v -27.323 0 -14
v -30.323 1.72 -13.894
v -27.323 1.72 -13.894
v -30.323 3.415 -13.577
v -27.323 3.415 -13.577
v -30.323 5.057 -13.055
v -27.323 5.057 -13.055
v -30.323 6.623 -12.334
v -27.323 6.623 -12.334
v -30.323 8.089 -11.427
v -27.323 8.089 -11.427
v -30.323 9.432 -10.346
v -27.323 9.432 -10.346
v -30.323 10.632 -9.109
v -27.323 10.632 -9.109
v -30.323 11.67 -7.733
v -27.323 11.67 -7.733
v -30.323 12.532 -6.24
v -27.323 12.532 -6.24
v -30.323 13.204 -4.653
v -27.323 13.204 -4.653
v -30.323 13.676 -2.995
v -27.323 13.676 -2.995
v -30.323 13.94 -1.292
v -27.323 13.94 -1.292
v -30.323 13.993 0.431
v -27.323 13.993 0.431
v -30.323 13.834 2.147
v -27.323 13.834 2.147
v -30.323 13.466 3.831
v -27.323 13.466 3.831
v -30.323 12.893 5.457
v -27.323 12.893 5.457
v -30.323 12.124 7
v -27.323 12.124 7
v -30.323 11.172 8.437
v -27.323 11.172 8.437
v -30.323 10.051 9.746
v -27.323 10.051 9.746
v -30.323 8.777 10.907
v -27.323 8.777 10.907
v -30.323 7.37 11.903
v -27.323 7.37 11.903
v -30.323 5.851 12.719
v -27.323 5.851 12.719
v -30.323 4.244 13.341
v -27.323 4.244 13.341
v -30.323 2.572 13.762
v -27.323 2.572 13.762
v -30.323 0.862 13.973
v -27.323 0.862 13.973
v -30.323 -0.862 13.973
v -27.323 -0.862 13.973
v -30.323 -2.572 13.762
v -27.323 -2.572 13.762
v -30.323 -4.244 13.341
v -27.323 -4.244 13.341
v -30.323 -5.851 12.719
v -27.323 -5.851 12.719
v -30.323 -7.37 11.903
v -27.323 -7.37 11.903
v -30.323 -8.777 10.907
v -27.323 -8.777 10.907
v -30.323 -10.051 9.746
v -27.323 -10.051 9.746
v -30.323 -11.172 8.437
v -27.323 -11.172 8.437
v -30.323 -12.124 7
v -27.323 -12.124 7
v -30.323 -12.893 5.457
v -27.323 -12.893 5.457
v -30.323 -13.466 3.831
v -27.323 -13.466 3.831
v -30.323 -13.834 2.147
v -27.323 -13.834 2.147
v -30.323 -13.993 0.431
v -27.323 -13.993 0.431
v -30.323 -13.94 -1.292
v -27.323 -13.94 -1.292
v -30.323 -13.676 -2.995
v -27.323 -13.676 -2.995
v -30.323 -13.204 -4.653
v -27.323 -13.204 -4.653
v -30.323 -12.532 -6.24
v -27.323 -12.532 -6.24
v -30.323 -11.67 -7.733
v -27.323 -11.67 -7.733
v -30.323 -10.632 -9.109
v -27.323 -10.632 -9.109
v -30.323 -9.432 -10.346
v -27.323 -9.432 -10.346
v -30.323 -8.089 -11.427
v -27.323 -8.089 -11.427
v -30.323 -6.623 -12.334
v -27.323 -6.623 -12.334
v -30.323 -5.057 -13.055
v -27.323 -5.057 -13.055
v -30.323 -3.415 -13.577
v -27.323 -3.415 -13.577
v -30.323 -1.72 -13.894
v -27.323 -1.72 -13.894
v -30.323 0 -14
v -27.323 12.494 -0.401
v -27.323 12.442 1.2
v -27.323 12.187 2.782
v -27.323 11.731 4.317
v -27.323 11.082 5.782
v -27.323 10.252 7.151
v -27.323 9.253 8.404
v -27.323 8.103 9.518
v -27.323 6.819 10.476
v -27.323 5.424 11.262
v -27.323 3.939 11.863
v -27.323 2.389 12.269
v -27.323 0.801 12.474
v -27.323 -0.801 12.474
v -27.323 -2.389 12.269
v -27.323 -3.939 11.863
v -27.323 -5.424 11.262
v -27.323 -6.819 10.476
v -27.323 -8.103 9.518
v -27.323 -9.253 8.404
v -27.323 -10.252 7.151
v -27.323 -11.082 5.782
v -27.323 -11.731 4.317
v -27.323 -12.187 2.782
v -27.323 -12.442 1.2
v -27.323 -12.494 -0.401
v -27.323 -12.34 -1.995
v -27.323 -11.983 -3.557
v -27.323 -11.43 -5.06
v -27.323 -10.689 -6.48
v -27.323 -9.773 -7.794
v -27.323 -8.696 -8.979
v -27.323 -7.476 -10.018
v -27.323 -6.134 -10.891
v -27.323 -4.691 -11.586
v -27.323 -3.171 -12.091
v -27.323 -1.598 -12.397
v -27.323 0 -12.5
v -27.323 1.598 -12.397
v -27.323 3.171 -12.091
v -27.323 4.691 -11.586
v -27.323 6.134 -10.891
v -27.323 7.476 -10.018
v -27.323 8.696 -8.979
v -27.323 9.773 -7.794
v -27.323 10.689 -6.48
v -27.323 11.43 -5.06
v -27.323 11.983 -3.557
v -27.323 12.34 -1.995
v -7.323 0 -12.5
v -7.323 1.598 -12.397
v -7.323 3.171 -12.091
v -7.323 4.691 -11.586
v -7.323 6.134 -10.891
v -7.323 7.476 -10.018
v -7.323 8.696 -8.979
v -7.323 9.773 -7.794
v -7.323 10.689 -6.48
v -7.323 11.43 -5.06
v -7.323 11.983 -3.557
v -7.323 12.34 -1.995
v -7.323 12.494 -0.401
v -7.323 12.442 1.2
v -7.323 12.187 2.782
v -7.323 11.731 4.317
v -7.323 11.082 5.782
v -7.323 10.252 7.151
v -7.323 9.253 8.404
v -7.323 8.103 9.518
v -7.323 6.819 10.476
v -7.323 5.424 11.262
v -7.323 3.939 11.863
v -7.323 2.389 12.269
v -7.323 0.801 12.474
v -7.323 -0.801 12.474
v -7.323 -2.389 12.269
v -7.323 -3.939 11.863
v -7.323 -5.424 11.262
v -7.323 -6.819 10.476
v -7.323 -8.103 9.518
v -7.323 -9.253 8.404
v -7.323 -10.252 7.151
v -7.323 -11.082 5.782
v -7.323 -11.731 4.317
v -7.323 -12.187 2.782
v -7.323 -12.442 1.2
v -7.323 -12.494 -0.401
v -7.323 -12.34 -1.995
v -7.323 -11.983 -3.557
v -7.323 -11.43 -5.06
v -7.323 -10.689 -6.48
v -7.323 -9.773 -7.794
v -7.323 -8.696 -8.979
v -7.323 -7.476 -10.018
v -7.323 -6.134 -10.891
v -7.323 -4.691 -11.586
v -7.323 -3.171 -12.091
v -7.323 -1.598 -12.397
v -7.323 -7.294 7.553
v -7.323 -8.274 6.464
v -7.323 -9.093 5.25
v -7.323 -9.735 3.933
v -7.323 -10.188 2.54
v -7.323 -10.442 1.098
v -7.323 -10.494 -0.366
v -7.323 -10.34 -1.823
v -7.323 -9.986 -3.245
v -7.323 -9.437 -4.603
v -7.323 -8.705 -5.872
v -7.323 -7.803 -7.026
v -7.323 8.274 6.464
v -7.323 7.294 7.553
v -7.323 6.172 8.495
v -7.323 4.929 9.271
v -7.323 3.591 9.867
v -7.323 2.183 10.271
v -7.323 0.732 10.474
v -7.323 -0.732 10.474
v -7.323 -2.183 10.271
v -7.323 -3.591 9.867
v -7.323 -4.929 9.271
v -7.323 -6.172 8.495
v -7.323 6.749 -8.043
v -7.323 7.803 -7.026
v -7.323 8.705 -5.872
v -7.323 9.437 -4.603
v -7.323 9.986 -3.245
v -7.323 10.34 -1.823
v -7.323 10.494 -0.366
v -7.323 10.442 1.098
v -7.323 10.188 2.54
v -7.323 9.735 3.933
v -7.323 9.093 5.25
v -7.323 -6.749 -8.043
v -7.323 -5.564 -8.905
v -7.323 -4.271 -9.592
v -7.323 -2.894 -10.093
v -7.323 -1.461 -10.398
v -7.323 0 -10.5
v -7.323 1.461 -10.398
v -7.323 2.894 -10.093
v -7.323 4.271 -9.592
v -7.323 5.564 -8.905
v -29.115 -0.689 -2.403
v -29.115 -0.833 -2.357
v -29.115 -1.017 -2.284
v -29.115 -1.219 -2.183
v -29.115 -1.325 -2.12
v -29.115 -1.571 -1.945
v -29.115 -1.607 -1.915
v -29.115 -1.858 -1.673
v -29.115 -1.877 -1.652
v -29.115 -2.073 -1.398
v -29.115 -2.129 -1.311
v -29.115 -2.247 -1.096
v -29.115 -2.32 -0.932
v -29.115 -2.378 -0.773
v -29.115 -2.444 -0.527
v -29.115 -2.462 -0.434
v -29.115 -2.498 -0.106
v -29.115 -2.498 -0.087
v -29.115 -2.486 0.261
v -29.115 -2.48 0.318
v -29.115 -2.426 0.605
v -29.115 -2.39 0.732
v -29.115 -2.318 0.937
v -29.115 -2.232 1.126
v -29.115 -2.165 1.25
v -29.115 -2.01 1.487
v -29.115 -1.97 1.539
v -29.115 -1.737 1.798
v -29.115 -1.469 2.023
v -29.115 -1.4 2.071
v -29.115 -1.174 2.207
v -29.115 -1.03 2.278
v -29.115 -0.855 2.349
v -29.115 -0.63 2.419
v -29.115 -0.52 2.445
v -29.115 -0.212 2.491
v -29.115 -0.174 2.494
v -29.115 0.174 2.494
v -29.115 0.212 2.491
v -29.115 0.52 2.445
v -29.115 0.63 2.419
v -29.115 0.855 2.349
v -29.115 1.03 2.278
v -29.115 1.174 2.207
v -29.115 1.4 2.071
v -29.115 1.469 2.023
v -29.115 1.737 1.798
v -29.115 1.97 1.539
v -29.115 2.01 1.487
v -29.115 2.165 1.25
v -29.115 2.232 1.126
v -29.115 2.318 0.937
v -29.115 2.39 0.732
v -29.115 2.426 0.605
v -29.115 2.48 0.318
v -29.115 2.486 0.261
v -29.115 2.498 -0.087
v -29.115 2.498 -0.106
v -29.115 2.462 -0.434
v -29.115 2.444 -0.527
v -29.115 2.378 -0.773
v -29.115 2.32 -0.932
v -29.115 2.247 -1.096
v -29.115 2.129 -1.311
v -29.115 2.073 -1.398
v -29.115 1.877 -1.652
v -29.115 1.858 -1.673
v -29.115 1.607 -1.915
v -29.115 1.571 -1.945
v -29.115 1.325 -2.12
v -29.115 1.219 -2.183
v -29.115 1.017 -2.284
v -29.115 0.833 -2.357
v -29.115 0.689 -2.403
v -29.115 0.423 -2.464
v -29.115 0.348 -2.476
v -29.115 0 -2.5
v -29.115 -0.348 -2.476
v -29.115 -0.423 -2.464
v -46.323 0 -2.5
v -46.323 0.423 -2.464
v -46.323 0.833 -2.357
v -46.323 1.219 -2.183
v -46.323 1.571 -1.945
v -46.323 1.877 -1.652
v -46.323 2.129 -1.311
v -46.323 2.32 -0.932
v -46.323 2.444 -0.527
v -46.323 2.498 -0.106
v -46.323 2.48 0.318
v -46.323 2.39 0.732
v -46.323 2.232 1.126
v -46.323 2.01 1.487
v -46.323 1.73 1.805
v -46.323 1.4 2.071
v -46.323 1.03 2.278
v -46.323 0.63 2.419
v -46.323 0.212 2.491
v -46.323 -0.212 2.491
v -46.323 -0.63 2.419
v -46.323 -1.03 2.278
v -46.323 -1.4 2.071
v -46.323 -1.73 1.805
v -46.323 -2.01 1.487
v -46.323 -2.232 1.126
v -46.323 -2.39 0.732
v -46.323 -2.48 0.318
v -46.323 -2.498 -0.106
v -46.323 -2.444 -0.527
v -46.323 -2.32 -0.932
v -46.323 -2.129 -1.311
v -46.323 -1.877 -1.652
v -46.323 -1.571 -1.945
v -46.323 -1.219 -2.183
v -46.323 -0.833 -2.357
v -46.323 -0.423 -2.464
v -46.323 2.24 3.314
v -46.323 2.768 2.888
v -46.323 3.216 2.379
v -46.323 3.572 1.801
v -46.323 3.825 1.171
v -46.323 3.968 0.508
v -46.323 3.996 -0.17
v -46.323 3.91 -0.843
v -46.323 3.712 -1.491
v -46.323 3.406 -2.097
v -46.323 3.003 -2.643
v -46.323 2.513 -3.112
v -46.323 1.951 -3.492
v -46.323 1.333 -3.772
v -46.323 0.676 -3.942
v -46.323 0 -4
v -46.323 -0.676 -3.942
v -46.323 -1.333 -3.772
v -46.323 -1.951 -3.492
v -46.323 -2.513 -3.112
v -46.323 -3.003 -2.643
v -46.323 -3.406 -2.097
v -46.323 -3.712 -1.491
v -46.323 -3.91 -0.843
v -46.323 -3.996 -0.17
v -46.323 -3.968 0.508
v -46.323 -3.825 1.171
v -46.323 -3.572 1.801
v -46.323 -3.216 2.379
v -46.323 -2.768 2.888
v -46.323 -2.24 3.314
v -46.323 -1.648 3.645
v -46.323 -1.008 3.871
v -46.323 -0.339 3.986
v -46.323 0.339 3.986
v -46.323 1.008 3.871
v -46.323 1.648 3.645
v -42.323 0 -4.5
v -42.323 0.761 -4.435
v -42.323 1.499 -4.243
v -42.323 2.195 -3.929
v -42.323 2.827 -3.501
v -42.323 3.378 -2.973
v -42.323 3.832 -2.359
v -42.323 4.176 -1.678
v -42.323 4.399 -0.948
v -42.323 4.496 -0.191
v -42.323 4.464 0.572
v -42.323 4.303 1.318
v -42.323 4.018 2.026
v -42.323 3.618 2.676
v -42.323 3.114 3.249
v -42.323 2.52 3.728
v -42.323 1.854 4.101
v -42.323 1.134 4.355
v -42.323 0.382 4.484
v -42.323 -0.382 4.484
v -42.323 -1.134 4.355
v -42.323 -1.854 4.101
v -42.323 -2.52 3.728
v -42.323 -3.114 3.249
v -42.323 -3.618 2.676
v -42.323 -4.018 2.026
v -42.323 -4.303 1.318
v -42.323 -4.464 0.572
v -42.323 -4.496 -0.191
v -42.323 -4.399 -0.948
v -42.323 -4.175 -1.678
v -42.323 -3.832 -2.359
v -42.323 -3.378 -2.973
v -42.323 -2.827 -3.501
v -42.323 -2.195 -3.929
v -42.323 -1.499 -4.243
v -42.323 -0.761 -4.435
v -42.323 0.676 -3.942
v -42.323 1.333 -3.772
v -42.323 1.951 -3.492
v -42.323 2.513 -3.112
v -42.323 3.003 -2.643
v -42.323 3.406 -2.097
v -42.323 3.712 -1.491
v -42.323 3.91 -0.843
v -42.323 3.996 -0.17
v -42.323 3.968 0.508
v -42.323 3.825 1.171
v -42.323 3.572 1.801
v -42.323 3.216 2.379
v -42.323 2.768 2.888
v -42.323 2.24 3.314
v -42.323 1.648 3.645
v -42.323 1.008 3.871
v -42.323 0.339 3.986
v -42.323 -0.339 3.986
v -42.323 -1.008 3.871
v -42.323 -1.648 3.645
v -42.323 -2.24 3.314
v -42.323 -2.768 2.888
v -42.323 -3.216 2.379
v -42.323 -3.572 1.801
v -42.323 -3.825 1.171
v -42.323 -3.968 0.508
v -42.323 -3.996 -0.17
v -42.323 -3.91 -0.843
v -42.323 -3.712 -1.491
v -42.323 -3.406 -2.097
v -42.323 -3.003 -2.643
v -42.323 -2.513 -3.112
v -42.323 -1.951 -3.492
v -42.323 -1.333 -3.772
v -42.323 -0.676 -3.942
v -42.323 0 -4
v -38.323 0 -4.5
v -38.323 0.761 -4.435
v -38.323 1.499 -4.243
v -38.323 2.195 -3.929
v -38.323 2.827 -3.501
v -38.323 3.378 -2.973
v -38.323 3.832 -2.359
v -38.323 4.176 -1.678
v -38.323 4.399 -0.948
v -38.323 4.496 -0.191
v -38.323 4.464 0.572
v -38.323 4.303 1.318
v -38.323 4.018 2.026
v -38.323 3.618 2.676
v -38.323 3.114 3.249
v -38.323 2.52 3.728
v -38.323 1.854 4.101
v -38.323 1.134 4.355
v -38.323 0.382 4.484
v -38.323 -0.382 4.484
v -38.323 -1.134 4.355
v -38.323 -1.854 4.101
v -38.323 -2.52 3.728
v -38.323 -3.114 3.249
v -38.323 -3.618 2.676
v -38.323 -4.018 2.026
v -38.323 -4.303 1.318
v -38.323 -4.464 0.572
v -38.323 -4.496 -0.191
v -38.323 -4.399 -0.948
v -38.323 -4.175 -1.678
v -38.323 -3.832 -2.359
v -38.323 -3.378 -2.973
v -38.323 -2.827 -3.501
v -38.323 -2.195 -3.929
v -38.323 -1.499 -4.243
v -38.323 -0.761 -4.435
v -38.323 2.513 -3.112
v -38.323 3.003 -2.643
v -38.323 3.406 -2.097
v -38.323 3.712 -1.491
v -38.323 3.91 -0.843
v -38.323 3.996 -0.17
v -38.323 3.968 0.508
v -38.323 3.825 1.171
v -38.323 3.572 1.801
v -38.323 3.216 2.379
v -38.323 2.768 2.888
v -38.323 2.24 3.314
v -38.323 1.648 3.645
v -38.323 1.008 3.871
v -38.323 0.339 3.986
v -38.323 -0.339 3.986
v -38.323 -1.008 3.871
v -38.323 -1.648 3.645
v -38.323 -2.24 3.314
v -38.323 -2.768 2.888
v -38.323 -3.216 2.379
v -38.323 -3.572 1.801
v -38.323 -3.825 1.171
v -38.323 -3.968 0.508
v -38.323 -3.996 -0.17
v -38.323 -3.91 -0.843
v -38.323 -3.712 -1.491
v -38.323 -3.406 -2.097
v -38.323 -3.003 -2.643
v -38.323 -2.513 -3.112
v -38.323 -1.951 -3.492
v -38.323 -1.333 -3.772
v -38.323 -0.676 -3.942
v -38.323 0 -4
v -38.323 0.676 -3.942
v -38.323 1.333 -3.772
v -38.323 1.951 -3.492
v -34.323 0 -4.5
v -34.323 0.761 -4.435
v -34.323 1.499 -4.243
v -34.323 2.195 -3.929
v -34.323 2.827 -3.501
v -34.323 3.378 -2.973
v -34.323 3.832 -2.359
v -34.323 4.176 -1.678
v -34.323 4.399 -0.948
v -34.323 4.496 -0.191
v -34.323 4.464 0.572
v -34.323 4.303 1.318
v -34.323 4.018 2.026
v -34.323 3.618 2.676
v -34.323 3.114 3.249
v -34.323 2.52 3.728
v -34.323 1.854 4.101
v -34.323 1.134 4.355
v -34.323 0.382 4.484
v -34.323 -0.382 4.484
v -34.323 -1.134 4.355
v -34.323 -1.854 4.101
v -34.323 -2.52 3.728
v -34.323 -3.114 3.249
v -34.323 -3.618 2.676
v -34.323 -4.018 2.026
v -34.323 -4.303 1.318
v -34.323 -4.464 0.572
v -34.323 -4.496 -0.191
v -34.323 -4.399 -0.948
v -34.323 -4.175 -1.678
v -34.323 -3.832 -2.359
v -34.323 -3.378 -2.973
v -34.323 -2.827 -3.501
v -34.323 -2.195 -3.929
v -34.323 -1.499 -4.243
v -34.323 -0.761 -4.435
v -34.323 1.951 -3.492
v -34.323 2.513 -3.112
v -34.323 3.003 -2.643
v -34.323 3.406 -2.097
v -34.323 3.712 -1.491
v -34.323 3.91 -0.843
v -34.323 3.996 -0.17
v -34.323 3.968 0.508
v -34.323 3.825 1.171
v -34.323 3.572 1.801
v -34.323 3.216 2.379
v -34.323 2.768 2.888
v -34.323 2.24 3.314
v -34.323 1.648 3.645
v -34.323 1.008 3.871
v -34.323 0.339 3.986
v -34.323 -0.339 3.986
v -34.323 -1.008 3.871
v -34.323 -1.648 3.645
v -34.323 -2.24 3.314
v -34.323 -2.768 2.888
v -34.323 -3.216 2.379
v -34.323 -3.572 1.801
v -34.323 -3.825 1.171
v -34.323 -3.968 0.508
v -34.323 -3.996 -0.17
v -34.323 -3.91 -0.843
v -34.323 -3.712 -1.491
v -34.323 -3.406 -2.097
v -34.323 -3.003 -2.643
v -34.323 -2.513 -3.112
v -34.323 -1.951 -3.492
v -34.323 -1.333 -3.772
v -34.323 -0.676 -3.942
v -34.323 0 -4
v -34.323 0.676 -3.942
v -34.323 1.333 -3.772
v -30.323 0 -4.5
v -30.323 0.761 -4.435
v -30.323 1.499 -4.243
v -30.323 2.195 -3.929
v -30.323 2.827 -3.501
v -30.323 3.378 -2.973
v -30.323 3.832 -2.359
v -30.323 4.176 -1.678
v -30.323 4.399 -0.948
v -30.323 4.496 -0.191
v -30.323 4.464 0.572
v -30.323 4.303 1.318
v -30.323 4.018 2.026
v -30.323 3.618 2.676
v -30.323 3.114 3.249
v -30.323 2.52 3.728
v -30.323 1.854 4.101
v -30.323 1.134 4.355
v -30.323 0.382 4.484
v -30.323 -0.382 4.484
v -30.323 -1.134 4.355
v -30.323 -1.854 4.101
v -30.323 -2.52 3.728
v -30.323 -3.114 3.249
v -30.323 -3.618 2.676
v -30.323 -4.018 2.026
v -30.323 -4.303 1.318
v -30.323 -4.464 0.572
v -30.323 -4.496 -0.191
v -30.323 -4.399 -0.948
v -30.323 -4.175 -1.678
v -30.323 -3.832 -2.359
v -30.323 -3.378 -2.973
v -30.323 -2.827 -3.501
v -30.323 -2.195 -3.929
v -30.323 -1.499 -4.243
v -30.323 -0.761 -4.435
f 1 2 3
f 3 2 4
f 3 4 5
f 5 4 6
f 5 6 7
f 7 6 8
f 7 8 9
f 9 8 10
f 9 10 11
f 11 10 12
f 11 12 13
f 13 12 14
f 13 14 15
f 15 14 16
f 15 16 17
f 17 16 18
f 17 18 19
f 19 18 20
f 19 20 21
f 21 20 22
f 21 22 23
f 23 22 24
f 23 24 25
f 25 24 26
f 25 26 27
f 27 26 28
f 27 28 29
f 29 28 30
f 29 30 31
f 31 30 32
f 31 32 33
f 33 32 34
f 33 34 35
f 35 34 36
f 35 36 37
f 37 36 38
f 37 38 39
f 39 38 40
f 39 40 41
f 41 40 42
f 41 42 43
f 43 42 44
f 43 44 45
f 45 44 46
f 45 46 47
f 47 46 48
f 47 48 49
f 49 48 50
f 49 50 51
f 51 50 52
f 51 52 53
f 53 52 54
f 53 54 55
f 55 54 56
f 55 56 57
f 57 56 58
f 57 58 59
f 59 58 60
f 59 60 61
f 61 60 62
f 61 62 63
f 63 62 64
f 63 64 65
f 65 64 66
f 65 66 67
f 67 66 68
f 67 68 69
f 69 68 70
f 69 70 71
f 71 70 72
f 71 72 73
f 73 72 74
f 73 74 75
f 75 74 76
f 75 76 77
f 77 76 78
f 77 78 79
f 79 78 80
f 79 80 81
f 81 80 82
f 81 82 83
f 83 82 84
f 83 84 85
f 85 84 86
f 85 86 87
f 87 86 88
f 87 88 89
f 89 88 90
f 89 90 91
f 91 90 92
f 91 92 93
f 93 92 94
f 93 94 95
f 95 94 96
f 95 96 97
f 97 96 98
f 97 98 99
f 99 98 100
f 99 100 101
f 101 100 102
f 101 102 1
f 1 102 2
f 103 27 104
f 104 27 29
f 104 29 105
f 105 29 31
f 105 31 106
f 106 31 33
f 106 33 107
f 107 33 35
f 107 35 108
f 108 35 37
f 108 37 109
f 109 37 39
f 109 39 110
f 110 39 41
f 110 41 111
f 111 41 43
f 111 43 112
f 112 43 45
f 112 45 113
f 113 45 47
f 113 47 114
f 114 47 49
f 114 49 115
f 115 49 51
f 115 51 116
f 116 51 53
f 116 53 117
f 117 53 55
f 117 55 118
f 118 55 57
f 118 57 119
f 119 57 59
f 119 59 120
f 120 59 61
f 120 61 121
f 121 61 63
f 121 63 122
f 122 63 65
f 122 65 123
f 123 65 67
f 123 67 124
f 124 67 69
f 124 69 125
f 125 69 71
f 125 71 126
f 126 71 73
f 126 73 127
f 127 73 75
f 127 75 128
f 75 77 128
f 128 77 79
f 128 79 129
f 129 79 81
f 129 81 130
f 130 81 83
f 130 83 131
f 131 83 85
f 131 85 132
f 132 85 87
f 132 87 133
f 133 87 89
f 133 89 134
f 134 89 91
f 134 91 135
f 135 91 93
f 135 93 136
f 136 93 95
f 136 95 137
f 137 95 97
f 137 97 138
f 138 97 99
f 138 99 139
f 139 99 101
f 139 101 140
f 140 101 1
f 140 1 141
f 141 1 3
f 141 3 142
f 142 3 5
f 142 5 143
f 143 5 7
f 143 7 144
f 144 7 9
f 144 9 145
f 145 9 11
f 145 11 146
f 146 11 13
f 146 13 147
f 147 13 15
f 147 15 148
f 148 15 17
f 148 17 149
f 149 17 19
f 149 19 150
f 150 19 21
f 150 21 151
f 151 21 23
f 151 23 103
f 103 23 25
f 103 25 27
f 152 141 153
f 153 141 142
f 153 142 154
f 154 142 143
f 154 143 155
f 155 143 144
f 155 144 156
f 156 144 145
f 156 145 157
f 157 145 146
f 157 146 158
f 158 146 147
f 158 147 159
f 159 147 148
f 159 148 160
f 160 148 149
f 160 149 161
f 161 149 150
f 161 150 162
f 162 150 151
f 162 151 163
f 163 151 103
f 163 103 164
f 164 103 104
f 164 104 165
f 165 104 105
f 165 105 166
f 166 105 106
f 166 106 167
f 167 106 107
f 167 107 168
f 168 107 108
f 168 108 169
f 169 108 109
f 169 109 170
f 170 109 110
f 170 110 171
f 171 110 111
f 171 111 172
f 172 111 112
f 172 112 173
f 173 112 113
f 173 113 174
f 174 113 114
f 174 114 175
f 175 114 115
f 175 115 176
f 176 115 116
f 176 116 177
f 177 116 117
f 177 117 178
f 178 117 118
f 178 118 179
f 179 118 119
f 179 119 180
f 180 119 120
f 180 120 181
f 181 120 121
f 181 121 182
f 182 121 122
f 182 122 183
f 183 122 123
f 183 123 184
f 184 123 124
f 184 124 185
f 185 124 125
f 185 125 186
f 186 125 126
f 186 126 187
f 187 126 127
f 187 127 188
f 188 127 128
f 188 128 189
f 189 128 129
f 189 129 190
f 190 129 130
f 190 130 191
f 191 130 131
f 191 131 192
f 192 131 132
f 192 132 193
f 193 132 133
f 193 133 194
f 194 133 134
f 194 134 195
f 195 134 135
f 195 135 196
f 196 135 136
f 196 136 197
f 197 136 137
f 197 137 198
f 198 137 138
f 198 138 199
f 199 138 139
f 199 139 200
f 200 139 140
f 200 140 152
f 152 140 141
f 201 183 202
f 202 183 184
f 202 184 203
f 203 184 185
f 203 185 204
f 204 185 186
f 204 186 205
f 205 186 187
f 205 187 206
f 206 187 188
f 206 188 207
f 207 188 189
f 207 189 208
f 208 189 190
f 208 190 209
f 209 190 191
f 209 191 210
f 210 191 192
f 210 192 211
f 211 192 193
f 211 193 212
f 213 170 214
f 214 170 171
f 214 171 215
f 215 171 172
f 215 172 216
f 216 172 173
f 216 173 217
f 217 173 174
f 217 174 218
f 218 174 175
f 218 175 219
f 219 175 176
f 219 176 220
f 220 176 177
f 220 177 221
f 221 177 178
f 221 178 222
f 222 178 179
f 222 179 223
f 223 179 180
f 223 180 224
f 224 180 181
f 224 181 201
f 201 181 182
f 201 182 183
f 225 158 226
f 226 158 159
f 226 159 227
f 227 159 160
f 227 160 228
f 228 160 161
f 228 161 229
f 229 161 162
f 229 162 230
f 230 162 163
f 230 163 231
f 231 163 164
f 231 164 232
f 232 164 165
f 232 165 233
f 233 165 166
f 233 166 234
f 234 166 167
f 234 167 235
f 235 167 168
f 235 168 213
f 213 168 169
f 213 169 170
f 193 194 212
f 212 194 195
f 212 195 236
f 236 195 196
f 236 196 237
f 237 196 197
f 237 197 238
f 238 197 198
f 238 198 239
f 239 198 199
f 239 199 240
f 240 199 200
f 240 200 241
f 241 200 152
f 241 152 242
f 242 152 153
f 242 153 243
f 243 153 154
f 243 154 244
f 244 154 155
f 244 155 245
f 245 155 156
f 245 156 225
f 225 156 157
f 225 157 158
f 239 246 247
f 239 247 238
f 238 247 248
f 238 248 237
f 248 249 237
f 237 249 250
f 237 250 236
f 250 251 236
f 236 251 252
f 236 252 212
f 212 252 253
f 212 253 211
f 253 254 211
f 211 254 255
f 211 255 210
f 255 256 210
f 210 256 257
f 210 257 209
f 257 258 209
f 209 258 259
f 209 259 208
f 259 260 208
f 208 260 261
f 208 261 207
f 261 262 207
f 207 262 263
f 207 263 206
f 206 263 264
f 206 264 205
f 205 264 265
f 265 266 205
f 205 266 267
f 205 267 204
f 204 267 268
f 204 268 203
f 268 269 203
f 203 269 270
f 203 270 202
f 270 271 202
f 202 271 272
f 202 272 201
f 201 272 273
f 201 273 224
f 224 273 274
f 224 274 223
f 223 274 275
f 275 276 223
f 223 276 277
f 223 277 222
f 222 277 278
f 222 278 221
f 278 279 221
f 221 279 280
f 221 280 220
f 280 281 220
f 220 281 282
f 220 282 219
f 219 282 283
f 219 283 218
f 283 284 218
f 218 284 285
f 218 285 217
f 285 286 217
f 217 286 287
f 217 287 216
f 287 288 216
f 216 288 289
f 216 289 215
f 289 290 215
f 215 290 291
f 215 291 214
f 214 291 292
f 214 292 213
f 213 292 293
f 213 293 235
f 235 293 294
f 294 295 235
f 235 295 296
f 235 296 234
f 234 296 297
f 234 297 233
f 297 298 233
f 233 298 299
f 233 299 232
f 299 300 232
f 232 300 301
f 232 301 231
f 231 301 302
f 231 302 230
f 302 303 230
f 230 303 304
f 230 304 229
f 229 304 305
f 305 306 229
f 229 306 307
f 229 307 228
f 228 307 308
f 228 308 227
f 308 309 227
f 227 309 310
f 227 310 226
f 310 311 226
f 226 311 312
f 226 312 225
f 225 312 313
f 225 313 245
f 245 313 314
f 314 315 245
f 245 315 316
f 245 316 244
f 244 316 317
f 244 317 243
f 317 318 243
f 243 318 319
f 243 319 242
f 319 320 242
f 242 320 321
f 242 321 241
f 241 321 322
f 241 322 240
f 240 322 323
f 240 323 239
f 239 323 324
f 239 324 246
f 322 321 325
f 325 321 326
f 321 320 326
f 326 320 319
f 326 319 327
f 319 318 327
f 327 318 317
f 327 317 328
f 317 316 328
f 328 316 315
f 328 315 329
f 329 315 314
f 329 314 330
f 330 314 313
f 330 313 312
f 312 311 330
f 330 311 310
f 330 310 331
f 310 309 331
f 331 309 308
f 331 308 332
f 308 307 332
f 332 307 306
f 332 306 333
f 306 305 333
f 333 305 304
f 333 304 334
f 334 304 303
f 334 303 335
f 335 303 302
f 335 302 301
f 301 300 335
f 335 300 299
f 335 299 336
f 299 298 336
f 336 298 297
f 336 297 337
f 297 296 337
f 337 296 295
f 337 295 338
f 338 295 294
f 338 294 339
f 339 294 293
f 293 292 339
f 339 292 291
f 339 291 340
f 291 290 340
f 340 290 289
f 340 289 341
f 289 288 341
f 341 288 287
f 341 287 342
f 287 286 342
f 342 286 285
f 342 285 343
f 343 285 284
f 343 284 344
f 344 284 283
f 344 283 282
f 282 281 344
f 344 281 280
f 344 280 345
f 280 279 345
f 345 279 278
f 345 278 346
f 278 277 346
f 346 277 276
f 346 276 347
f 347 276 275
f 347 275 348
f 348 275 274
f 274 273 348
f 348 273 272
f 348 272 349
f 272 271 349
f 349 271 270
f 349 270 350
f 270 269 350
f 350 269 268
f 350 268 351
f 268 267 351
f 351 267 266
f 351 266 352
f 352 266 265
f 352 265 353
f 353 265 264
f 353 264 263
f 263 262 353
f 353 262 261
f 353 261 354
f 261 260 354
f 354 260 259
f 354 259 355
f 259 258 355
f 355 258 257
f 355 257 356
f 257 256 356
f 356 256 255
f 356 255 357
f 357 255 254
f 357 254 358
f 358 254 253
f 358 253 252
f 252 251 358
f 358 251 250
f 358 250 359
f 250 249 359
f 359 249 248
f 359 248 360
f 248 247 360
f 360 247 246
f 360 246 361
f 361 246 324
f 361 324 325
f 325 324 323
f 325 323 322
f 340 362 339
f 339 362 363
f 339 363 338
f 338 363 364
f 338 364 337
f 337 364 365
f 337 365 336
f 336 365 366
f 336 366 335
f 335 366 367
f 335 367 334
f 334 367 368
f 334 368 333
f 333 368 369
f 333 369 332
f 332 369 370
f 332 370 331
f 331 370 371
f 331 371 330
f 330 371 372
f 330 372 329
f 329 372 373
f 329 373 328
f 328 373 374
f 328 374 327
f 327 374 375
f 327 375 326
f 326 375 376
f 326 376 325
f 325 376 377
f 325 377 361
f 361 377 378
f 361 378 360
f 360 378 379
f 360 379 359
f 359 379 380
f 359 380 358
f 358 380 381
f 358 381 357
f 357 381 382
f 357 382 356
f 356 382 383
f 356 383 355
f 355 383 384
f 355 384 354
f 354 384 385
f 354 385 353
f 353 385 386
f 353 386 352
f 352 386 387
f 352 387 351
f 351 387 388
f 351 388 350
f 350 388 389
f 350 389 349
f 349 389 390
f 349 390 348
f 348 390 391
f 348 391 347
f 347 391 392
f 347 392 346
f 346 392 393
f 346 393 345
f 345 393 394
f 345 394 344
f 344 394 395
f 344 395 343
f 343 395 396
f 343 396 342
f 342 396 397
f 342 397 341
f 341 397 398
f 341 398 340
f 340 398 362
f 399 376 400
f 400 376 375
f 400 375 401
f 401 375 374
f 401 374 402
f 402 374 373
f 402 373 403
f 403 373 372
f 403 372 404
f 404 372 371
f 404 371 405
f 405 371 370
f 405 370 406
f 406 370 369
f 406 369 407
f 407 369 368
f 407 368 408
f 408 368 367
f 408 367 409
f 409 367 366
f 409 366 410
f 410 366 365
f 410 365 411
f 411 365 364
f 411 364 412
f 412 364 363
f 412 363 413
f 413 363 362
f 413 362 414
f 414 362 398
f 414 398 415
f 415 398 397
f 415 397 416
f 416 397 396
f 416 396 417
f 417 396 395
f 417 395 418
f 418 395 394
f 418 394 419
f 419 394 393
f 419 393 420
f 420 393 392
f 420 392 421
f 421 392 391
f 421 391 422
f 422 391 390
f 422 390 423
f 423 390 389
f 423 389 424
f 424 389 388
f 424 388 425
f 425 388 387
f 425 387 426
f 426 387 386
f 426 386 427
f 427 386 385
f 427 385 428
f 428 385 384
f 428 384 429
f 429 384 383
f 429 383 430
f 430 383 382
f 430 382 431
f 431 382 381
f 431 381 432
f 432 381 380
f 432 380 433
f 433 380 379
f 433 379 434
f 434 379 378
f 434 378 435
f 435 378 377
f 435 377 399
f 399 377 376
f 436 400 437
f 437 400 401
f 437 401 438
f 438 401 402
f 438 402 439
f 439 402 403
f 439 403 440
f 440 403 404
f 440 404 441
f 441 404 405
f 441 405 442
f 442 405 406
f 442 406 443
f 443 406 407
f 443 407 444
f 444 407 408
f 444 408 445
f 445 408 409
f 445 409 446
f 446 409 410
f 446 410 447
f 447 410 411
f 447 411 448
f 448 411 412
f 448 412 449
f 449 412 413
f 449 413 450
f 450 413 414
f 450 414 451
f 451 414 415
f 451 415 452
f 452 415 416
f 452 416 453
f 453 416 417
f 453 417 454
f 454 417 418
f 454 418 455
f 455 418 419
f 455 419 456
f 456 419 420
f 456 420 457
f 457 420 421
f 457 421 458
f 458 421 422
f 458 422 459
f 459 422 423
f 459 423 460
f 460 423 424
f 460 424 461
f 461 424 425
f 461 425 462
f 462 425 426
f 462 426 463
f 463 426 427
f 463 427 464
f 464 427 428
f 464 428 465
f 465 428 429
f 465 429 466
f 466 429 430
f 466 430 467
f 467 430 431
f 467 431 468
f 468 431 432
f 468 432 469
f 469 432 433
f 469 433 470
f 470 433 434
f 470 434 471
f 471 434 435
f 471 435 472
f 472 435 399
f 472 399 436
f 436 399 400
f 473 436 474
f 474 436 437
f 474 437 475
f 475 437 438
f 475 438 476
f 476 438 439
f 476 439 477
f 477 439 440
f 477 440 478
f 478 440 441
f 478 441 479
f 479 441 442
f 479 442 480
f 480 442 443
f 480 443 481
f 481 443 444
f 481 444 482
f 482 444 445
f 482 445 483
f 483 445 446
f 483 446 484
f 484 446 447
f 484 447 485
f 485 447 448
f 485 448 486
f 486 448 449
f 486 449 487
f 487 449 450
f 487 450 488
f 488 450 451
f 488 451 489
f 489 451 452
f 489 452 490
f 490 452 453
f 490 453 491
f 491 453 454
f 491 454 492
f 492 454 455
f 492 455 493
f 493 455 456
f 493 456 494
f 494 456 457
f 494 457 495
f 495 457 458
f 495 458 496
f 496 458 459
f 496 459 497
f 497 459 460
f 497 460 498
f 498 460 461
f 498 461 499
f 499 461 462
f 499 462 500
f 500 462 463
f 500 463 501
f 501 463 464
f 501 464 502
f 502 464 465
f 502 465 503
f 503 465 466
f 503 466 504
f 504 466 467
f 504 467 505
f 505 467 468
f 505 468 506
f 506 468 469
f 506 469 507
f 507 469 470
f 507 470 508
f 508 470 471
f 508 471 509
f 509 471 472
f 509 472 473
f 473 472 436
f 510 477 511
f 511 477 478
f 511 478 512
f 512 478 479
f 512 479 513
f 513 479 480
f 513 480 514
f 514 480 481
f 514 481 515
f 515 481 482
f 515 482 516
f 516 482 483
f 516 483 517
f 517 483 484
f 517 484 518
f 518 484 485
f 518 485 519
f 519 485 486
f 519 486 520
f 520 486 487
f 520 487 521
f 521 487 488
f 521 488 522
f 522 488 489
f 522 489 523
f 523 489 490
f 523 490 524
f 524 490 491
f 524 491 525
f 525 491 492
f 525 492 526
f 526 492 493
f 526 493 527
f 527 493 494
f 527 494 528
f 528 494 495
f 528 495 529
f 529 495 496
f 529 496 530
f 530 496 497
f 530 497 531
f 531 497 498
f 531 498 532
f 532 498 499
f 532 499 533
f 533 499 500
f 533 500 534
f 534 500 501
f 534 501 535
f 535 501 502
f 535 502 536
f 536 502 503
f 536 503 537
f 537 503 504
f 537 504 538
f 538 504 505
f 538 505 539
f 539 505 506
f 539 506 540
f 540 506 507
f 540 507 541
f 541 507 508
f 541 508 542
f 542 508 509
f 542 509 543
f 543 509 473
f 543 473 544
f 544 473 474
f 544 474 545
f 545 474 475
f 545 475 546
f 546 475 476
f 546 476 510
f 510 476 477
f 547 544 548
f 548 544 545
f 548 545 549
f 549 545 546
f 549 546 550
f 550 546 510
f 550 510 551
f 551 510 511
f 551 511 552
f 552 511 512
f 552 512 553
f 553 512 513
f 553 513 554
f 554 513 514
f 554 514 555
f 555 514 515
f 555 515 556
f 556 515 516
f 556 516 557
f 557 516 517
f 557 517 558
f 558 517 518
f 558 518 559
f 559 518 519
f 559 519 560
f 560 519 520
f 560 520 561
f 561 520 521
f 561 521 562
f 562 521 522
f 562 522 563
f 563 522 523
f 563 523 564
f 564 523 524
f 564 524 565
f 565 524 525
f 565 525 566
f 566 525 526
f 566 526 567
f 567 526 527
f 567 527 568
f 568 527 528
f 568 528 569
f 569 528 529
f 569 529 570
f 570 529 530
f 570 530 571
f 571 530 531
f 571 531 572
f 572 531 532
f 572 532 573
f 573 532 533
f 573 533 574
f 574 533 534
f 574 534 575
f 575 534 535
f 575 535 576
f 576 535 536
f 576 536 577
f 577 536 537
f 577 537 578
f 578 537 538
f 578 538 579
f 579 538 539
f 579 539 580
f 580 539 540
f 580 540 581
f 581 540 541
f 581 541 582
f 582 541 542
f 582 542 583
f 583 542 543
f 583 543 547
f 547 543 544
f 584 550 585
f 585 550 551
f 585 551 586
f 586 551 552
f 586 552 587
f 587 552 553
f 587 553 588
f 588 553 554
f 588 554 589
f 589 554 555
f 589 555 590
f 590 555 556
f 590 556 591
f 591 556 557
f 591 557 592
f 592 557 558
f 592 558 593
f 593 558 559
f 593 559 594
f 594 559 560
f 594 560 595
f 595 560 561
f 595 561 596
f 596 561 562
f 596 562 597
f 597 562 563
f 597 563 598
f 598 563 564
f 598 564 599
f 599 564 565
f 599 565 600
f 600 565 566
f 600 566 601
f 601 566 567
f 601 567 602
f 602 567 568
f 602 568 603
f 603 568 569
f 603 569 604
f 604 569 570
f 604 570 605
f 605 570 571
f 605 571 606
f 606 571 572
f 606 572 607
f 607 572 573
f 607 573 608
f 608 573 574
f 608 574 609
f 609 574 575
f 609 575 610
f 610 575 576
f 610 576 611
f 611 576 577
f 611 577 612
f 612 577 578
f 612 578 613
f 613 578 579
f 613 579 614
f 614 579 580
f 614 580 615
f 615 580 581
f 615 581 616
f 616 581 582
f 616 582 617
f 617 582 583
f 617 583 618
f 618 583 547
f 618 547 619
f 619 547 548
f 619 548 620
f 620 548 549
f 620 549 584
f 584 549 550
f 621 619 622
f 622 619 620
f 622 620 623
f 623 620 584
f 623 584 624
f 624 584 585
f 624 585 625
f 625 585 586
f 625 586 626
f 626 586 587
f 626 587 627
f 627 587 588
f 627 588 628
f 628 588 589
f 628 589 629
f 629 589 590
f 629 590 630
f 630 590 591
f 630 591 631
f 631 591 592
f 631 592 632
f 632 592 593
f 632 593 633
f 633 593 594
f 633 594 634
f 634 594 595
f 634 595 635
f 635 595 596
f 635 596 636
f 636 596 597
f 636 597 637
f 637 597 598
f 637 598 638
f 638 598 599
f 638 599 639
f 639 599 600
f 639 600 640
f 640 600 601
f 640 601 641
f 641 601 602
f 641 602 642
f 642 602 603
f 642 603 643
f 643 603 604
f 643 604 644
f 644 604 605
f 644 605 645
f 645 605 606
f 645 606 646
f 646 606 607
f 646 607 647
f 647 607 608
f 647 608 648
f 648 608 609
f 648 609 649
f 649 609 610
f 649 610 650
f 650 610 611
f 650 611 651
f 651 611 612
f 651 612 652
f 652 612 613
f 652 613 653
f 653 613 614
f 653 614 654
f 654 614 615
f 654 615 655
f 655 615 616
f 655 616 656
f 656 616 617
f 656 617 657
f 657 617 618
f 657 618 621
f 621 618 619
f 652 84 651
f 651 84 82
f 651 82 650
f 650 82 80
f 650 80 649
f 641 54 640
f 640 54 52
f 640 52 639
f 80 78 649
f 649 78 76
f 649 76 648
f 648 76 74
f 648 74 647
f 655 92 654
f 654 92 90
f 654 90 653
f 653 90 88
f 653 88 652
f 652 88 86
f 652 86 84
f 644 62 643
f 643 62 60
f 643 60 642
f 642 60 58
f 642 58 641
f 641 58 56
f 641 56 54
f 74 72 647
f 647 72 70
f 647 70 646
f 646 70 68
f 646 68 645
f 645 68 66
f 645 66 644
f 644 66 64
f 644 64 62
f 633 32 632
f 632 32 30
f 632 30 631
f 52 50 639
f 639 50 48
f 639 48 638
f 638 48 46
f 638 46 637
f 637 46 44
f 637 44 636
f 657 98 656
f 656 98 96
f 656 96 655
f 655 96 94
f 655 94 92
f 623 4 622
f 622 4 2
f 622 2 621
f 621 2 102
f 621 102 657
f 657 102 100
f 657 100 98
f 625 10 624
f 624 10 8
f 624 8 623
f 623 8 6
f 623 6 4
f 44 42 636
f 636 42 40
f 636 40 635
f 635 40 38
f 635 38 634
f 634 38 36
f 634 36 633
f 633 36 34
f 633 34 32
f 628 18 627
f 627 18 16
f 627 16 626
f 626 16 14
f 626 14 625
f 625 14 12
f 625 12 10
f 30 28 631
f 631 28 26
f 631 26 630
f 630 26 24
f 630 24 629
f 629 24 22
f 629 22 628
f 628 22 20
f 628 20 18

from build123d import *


with BuildPart() as part:
    # Esboço1 → Revolução1 (revolve)
    with BuildSketch(Plane.XY, mode=Mode.PRIVATE) as revolu_o1_sk:
        Polygon((-27.323427807, 14), (-27.323427807, 12.5), (-7.323427807, 12.5), (-7.323427807, 10.5), (-29.115185999, 2.5), (-46.323427807, 2.5), (-46.323427807, 4), (-42.323427807, 4.5), (-42.323427807, 4), (-38.323427807, 4.5), (-38.323427807, 4), (-34.323427807, 4.5), (-34.323427807, 4), (-30.323427807, 4.5), (-30.323427807, 14), align=None)
    revolve(revolu_o1_sk.sketch.rotate(Axis((48.321734693, 0, 0), (-1, 0, 0)), 90), axis=Axis((48.321734693, 0, 0), (-1, 0, 0)))


solid = part.part
